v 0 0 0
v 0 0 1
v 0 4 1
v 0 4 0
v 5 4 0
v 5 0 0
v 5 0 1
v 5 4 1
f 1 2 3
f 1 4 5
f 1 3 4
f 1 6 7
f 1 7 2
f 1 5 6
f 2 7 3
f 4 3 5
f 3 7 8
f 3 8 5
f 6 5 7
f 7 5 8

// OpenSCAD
/* Warning, this is a very basic generator with a lot of approximation 
input data : [VDFN, 5LC, 5x4x1.0mm, 16, , B, C04-25450B]
generated by com.zoubworld.electronics.cad.model3d.Basic
Date : Sun Feb 15 10:50:49 CET 2026
*/

//body
color("black")
translate([0,0,0])
cube([5.0,4.0,1.0], center=false);
